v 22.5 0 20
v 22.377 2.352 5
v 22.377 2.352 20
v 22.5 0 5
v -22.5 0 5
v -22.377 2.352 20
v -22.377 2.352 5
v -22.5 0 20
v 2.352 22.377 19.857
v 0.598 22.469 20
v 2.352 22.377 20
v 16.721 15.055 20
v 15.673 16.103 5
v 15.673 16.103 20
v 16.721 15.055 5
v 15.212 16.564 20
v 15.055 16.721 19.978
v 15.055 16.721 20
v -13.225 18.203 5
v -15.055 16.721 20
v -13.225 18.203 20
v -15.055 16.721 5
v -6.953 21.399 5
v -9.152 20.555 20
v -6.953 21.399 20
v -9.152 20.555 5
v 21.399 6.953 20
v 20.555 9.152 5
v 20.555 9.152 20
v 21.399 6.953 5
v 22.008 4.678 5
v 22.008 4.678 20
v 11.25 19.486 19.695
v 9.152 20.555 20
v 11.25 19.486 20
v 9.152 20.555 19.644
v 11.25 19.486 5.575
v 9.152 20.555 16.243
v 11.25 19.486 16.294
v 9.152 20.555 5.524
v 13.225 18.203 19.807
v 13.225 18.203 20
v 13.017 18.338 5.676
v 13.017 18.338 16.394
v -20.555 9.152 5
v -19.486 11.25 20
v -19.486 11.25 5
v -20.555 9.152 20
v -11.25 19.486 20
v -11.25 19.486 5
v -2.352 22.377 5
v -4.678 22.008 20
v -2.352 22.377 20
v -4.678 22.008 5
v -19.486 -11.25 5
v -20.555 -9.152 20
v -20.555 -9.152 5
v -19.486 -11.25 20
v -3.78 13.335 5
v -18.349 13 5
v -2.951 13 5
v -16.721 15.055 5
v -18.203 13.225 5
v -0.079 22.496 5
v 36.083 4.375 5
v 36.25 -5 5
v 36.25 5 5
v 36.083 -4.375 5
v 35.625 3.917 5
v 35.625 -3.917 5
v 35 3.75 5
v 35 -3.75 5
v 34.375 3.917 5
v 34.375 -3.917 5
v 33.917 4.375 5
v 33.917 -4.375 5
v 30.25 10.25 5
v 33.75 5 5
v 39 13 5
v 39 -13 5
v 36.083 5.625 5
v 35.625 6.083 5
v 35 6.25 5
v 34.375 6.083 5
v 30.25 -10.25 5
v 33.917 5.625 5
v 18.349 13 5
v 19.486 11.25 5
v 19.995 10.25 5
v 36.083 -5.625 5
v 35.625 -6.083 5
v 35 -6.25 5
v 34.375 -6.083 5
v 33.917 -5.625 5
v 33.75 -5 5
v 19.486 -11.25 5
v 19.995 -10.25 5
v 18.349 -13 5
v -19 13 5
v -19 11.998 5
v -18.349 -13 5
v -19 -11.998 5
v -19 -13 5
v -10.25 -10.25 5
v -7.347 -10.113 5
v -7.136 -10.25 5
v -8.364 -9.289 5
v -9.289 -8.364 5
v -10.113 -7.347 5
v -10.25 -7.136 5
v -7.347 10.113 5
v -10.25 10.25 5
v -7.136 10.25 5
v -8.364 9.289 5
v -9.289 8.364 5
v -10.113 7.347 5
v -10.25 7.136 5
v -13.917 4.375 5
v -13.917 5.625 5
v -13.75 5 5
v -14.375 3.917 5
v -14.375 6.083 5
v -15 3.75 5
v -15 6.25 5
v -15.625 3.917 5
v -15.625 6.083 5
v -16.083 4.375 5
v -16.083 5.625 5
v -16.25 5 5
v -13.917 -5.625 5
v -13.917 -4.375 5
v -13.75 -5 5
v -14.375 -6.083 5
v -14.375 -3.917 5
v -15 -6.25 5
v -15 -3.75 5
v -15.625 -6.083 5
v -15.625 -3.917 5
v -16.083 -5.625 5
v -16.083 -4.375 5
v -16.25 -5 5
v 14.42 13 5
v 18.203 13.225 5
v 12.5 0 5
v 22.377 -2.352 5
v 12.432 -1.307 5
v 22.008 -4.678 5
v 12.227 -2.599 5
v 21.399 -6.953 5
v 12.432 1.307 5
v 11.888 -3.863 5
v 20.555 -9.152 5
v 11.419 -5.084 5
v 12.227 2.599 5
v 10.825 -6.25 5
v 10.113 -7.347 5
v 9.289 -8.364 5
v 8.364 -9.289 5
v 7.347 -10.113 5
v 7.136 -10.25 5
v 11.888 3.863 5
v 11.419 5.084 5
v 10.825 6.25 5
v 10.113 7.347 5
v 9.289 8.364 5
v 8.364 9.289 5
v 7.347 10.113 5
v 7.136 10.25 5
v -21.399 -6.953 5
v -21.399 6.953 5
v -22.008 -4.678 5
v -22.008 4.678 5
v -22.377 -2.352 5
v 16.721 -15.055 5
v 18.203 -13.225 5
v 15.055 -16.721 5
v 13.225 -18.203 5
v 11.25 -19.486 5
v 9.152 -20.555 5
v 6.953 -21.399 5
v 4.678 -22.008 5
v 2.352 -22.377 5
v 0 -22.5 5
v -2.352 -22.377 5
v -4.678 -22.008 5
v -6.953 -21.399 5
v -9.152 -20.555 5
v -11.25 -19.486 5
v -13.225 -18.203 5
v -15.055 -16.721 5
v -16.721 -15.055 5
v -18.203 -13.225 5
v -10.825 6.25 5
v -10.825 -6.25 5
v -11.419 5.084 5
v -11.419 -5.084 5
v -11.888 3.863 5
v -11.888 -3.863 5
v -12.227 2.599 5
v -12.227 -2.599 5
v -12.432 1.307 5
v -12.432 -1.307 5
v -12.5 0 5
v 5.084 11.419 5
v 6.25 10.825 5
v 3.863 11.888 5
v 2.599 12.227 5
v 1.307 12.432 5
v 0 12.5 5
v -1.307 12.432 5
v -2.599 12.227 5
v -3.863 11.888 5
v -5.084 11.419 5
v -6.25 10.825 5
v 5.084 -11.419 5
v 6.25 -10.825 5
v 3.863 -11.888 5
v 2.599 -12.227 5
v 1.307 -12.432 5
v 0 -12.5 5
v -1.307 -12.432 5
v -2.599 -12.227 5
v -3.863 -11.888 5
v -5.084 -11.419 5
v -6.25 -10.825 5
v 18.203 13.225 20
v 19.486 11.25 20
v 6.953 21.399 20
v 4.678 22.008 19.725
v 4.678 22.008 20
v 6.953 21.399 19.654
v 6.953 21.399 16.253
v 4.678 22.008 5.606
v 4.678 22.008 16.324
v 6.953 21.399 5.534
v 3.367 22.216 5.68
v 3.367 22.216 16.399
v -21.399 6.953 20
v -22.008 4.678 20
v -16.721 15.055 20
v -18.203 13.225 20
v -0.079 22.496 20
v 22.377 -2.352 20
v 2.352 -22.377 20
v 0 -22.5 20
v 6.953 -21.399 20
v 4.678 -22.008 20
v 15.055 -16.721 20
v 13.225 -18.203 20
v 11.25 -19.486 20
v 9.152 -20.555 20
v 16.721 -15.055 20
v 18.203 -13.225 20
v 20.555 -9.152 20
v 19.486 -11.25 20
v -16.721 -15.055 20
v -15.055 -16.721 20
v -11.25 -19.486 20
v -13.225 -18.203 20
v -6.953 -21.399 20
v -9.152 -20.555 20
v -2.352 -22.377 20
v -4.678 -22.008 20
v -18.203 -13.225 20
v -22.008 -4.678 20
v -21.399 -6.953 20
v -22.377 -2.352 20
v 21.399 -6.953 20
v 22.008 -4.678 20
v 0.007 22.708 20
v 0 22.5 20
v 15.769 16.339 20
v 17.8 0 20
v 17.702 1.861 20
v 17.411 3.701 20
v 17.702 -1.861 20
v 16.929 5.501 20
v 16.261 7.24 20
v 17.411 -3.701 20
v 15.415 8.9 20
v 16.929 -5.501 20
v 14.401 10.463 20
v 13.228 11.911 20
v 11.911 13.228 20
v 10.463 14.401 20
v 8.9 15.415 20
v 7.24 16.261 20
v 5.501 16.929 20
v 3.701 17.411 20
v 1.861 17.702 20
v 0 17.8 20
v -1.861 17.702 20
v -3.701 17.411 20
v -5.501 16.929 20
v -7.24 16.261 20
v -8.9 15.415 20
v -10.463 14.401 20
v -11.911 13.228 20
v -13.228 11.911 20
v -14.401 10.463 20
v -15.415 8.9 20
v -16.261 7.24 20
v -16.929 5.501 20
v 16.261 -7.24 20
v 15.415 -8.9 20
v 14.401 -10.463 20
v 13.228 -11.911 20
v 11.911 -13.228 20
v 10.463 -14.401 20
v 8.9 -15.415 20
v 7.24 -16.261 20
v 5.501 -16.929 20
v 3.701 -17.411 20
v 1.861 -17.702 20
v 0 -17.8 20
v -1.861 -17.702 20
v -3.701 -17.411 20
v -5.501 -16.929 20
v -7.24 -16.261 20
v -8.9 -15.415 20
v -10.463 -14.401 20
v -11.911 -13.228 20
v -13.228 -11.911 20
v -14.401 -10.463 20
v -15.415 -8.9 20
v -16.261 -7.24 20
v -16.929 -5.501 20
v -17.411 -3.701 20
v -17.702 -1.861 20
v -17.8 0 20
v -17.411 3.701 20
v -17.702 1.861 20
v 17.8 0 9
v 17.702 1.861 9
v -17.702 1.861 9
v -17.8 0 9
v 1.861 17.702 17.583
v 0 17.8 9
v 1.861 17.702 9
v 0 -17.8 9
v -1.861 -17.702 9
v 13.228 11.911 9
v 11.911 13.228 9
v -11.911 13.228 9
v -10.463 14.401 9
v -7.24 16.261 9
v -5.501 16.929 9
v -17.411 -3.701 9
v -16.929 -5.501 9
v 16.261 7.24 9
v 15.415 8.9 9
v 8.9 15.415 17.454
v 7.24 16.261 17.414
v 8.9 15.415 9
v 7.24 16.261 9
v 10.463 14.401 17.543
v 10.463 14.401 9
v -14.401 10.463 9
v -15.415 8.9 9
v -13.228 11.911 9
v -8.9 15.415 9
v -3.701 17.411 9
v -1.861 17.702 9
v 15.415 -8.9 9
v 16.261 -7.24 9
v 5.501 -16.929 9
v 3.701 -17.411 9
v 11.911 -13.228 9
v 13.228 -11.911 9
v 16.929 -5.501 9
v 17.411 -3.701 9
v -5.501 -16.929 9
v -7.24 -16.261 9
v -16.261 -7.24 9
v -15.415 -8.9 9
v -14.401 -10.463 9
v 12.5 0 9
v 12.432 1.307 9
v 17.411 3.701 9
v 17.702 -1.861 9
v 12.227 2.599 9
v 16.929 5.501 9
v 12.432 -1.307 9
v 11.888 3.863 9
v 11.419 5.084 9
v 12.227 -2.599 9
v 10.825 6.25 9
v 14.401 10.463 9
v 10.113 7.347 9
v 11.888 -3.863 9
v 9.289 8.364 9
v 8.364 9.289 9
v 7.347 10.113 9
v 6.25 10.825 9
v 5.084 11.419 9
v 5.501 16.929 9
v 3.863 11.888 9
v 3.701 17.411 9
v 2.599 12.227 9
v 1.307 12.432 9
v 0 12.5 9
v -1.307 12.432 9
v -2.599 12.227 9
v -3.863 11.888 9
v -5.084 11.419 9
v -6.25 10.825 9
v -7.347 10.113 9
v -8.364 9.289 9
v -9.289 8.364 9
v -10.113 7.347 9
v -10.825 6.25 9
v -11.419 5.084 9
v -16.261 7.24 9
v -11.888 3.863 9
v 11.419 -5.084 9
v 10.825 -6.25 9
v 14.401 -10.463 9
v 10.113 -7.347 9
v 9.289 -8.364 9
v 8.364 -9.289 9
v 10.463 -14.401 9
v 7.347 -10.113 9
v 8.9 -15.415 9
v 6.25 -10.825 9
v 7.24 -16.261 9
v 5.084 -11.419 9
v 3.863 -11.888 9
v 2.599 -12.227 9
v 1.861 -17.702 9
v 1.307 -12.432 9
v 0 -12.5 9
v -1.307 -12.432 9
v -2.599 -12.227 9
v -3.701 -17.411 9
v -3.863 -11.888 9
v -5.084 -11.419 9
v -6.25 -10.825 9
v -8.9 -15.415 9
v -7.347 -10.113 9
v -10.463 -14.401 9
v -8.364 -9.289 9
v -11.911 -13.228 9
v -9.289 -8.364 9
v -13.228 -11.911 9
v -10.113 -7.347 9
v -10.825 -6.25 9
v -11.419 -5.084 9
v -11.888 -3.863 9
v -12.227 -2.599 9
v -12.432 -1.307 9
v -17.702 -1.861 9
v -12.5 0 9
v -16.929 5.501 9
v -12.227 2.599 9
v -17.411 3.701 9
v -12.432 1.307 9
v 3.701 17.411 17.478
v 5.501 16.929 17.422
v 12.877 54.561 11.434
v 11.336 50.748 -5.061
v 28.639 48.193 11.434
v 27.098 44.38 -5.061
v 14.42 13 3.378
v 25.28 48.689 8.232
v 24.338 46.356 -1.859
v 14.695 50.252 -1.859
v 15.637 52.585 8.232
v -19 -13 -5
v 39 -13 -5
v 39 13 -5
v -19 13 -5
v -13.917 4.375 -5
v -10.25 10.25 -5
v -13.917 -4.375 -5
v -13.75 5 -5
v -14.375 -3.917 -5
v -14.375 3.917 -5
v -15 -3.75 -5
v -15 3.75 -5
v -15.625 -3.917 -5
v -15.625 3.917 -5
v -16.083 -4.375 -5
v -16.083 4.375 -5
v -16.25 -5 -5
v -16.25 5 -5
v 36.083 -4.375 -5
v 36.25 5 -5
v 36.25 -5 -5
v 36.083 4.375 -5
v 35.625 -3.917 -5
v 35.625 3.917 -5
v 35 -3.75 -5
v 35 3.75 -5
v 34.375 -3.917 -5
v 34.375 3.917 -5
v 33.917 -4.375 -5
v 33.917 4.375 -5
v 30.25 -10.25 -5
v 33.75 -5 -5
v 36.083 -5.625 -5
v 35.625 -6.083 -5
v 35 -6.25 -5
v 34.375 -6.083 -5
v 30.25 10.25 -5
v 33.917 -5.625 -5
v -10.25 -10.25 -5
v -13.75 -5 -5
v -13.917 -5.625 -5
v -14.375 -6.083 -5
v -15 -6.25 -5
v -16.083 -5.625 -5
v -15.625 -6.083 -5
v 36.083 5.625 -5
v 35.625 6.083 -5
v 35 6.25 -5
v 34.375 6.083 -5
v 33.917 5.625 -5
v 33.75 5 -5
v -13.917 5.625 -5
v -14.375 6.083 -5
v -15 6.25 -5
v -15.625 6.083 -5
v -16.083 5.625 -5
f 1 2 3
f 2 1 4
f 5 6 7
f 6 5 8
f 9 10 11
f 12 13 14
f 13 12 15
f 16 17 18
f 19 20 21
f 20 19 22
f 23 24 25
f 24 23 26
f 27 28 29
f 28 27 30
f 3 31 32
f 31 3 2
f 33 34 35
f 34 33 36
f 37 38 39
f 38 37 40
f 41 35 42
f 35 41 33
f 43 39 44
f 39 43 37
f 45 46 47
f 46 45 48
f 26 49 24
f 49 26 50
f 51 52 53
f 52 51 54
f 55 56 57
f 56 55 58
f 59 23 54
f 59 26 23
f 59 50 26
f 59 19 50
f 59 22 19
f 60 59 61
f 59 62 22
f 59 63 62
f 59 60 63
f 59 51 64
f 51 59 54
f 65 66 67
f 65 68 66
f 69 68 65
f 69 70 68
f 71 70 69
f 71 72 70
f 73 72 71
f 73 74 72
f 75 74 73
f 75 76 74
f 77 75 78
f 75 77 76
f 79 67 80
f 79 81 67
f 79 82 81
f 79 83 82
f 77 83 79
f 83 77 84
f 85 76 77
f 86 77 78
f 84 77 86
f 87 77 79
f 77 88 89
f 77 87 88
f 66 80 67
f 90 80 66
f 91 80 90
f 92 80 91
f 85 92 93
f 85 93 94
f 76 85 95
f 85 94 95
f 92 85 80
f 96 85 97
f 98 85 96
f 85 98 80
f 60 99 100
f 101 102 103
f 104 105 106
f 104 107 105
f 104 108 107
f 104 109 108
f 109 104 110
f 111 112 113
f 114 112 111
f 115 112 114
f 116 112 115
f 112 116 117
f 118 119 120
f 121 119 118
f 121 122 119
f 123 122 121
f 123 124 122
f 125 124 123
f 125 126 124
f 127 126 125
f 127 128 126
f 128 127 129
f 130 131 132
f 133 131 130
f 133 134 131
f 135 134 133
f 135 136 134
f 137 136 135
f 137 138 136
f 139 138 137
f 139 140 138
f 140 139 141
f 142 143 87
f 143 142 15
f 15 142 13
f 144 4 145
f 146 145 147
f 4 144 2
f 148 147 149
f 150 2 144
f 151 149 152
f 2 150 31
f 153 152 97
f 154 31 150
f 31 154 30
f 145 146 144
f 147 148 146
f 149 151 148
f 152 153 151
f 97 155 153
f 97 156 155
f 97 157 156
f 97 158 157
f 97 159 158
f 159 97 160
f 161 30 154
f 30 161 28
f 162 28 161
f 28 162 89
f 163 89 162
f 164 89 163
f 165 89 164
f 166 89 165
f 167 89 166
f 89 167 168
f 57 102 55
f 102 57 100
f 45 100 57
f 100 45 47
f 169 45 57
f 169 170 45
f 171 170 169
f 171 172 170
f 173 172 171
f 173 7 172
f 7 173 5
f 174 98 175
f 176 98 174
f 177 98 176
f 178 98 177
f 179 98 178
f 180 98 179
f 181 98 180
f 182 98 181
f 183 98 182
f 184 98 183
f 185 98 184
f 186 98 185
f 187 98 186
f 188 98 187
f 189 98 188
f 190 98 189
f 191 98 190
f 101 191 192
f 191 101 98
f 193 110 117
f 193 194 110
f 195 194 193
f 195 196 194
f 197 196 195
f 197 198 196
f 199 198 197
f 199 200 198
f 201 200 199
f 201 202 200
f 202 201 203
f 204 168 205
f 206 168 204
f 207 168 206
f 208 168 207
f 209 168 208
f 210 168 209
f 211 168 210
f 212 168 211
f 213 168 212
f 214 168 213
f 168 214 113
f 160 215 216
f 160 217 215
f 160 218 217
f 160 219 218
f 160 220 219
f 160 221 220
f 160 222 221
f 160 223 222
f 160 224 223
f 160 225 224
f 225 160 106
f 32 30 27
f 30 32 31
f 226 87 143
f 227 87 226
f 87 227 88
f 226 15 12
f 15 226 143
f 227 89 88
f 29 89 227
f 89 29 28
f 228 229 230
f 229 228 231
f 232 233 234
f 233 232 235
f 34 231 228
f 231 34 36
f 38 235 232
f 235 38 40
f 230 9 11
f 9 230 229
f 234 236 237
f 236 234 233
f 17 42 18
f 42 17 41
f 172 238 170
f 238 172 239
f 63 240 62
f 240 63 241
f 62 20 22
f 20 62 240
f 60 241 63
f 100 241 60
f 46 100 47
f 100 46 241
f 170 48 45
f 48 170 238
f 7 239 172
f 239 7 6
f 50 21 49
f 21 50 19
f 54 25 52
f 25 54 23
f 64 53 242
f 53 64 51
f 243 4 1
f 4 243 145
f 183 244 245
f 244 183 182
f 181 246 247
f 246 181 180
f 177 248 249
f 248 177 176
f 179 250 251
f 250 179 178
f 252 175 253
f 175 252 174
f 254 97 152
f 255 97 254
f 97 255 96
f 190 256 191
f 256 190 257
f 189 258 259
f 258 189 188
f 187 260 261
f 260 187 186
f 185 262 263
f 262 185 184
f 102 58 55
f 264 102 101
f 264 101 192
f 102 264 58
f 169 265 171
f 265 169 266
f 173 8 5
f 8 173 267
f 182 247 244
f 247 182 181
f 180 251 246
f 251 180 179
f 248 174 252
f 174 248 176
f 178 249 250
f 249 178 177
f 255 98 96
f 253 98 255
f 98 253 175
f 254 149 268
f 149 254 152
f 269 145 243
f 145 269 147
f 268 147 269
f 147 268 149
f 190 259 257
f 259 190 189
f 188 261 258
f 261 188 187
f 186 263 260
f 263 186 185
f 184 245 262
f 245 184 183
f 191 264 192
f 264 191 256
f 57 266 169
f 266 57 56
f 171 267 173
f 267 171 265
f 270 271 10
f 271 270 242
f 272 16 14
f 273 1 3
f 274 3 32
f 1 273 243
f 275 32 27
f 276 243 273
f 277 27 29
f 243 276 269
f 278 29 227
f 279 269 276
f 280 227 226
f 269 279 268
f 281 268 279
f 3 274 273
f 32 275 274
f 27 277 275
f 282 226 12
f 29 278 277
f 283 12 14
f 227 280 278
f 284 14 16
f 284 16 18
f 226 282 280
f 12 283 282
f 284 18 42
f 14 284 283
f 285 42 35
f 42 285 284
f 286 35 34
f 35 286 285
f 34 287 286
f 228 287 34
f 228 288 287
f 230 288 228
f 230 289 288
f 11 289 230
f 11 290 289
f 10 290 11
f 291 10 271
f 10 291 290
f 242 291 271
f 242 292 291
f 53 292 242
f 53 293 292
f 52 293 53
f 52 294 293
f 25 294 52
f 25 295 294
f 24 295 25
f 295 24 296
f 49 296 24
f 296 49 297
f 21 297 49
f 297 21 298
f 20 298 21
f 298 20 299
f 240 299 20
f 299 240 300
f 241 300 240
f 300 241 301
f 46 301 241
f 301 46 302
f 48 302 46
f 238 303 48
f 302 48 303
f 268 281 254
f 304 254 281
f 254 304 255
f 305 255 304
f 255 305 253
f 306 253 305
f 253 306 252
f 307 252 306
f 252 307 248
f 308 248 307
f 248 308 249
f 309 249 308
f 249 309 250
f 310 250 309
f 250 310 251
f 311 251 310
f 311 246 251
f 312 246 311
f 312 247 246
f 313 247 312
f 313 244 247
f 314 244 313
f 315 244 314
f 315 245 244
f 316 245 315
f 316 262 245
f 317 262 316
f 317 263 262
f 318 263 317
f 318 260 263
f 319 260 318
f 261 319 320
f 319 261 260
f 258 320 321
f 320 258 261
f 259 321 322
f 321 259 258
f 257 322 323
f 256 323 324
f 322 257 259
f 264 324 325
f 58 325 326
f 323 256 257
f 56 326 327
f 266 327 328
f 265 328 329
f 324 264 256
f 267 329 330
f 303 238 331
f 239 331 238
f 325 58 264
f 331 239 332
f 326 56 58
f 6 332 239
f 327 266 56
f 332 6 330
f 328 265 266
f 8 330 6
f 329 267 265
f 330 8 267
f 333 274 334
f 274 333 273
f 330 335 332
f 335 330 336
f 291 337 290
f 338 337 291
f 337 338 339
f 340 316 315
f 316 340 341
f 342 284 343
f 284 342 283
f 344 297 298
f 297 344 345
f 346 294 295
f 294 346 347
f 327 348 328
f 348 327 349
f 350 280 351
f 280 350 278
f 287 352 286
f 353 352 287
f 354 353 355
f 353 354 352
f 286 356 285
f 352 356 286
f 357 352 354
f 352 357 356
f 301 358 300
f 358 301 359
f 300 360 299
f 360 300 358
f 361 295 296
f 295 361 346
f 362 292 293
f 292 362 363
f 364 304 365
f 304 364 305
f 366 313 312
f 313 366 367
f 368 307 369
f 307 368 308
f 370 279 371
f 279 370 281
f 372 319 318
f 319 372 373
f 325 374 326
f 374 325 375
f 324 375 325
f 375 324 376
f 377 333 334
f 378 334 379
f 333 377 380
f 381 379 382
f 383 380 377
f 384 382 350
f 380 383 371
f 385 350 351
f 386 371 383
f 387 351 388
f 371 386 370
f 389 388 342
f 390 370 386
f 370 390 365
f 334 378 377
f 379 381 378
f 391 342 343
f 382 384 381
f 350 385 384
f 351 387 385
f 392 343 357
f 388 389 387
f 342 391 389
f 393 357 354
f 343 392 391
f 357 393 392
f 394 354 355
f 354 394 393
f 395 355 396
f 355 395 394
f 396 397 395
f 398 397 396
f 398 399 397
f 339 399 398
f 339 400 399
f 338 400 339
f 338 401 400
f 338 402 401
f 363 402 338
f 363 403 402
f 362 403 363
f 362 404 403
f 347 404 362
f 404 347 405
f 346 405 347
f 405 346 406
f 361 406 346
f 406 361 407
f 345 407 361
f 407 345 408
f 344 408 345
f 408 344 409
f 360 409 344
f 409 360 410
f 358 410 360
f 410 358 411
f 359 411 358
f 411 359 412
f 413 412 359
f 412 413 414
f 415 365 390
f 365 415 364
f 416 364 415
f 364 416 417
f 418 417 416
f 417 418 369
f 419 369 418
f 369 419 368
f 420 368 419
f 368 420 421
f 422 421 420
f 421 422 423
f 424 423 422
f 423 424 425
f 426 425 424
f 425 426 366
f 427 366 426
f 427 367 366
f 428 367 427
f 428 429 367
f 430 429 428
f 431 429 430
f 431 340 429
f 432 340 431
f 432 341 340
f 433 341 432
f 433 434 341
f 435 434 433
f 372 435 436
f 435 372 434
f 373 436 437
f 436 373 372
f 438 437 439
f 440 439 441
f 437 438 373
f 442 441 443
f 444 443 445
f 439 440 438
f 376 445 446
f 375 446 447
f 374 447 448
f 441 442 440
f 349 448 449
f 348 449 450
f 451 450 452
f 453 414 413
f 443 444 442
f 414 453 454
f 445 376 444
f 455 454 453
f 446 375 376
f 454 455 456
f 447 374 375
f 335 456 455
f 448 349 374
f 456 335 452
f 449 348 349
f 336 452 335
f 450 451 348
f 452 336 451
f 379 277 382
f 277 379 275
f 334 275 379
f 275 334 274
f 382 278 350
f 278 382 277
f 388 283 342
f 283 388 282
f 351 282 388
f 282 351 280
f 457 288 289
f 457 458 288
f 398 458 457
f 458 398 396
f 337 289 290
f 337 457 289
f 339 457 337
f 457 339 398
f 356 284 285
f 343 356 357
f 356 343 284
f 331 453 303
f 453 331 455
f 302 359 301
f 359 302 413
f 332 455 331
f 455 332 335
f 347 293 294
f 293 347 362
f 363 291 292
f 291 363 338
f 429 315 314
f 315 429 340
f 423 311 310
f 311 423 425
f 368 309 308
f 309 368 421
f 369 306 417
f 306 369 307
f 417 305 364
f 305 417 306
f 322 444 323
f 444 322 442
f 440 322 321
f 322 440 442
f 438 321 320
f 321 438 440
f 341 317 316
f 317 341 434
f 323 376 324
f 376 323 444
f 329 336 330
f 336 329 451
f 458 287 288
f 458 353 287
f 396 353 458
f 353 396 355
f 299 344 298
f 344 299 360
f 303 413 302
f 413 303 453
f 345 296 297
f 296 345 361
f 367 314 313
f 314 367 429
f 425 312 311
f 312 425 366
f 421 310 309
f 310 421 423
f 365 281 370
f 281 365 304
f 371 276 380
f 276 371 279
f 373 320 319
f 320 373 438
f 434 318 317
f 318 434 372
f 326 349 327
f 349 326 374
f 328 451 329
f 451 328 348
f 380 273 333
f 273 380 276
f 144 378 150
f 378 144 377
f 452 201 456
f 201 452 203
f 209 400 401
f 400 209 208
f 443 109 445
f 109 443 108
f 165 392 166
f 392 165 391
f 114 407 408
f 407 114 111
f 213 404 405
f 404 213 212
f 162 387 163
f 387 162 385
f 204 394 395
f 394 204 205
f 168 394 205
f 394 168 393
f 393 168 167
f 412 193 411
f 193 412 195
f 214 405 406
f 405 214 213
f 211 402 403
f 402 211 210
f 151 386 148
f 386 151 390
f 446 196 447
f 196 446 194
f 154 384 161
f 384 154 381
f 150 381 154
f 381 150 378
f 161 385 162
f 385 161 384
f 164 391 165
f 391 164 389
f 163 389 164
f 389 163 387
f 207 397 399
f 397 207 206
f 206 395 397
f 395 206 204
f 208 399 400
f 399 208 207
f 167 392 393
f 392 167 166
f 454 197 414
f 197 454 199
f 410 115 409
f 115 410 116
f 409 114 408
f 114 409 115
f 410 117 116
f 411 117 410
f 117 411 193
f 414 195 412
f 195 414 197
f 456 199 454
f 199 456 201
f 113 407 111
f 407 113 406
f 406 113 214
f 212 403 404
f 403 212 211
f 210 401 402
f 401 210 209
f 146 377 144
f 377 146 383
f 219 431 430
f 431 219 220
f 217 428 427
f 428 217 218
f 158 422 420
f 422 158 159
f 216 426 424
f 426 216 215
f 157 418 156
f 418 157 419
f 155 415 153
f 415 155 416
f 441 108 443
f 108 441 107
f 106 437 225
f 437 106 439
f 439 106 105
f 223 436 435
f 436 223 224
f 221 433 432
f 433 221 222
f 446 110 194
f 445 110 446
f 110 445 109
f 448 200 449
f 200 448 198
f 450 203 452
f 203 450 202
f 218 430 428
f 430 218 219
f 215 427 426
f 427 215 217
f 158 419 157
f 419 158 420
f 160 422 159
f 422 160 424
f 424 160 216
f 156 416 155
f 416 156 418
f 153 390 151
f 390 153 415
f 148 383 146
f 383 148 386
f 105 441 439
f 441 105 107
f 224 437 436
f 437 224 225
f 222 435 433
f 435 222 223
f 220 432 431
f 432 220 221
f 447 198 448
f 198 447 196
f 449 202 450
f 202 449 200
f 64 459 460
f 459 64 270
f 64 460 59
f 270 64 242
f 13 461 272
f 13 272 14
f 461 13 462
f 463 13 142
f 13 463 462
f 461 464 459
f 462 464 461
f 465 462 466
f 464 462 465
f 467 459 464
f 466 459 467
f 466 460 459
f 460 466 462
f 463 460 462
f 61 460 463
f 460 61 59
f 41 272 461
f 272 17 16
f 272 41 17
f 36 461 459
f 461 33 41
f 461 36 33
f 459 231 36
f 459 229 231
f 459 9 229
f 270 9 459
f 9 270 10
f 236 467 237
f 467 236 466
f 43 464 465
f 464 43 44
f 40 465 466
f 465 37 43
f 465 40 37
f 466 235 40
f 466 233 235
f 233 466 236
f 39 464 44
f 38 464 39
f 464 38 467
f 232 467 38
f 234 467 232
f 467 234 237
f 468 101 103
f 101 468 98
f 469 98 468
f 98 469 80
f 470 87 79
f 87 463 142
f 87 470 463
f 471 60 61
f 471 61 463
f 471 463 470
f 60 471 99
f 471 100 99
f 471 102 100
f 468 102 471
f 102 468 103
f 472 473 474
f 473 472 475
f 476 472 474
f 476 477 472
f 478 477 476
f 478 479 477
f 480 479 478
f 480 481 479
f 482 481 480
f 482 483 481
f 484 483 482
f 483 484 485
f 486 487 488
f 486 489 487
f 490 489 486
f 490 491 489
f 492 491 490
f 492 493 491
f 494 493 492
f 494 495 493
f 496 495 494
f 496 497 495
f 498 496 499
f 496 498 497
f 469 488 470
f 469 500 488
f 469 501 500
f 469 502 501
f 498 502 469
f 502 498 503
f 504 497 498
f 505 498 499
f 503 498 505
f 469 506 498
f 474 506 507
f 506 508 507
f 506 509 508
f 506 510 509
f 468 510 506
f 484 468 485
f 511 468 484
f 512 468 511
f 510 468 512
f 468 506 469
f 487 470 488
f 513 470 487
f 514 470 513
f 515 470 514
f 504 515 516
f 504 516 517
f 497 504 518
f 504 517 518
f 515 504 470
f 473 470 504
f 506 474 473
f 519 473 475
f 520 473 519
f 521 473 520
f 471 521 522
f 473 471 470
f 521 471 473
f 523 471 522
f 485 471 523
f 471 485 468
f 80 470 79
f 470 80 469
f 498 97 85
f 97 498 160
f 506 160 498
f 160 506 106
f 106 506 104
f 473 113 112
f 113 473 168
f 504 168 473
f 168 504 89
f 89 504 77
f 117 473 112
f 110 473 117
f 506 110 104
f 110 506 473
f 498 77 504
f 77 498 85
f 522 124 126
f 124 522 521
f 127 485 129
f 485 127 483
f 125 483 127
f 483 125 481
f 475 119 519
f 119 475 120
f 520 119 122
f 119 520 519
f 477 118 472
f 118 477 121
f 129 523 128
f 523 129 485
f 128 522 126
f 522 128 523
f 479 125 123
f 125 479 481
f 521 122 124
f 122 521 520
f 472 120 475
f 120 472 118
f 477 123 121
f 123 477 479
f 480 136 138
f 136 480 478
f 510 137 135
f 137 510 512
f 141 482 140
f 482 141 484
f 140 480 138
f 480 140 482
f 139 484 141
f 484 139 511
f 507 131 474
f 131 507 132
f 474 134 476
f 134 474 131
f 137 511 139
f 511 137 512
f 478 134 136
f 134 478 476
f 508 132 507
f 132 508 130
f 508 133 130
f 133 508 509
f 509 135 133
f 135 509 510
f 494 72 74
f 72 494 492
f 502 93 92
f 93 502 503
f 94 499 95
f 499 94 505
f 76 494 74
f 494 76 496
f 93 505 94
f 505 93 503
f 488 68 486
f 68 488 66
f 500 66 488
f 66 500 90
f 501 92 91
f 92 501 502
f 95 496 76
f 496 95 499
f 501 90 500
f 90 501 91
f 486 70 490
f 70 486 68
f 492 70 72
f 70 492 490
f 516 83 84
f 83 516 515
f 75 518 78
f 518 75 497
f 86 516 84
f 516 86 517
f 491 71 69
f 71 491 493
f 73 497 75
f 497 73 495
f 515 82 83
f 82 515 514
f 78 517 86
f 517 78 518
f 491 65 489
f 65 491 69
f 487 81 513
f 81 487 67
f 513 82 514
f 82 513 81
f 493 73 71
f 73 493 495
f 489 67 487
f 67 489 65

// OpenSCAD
$fn=20;

translate([0,0,5])
difference(){
    cylinder(d=45,h=15,$fn=60);
    translate([0,0,4])cylinder(d=35.6,h=12,$fn=60);
    translate([0,0,-1])cylinder(d=25,h=12,$fn=60);
}

difference(){
rotate([0,0,-22])
rotate([-14,0,0])
translate([0,30,16])
rotate([90,0,0])
difference(){
cube([17,17,42],center=true);
cube([10.4,10.4,42],center=true);
}
translate([0,0,5])cylinder(d=35,h=16,$fn=60);
translate([0,0,25])cube([100,100,10],center=true);
}


$fn=12;
translate([10,0,0])
rotate([0,0,90])
difference(){
cube([26,58,10],center=true);
cube([20.5,40.5,12],center=true);
translate([5,25,-6])cylinder(d=2.5,h=12);
translate([-5,25,-6])cylinder(d=2.5,h=12);
translate([-5,-25,-6])cylinder(d=2.5,h=12);
translate([5,-25,-6])cylinder(d=2.5,h=12);
}
